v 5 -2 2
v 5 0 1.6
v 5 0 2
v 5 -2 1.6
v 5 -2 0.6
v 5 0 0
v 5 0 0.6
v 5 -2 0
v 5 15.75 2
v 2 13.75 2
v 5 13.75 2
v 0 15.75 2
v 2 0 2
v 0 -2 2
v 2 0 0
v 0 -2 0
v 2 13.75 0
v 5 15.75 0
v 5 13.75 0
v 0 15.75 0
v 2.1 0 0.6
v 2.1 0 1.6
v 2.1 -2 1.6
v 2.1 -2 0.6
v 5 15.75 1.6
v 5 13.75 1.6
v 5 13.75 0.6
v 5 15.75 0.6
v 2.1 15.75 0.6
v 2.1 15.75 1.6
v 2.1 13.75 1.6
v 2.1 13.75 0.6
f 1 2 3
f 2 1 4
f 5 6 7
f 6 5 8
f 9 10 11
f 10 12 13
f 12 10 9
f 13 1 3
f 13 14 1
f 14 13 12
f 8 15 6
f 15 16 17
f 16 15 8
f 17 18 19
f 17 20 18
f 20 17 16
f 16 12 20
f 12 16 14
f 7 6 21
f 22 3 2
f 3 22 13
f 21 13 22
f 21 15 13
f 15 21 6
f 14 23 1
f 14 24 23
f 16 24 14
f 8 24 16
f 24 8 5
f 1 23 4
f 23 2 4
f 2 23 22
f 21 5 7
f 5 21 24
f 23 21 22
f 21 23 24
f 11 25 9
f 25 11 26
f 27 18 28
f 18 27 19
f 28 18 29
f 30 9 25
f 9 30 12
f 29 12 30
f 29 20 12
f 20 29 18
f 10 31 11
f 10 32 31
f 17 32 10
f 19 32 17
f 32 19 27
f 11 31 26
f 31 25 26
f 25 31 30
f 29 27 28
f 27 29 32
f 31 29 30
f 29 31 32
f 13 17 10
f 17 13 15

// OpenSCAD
cube([2, 13.75, 2]);
difference() {
	translate([0, -2, 0]) cube([5, 2, 2]);
	translate([2.1, -2.5, 0.6]) cube([3, 3, 1]);
}
difference() {
	translate([0, 13.75, 0]) cube([5, 2, 2]);
	translate([2.1, 13.25, 0.6]) cube([3, 3, 1]);
}
